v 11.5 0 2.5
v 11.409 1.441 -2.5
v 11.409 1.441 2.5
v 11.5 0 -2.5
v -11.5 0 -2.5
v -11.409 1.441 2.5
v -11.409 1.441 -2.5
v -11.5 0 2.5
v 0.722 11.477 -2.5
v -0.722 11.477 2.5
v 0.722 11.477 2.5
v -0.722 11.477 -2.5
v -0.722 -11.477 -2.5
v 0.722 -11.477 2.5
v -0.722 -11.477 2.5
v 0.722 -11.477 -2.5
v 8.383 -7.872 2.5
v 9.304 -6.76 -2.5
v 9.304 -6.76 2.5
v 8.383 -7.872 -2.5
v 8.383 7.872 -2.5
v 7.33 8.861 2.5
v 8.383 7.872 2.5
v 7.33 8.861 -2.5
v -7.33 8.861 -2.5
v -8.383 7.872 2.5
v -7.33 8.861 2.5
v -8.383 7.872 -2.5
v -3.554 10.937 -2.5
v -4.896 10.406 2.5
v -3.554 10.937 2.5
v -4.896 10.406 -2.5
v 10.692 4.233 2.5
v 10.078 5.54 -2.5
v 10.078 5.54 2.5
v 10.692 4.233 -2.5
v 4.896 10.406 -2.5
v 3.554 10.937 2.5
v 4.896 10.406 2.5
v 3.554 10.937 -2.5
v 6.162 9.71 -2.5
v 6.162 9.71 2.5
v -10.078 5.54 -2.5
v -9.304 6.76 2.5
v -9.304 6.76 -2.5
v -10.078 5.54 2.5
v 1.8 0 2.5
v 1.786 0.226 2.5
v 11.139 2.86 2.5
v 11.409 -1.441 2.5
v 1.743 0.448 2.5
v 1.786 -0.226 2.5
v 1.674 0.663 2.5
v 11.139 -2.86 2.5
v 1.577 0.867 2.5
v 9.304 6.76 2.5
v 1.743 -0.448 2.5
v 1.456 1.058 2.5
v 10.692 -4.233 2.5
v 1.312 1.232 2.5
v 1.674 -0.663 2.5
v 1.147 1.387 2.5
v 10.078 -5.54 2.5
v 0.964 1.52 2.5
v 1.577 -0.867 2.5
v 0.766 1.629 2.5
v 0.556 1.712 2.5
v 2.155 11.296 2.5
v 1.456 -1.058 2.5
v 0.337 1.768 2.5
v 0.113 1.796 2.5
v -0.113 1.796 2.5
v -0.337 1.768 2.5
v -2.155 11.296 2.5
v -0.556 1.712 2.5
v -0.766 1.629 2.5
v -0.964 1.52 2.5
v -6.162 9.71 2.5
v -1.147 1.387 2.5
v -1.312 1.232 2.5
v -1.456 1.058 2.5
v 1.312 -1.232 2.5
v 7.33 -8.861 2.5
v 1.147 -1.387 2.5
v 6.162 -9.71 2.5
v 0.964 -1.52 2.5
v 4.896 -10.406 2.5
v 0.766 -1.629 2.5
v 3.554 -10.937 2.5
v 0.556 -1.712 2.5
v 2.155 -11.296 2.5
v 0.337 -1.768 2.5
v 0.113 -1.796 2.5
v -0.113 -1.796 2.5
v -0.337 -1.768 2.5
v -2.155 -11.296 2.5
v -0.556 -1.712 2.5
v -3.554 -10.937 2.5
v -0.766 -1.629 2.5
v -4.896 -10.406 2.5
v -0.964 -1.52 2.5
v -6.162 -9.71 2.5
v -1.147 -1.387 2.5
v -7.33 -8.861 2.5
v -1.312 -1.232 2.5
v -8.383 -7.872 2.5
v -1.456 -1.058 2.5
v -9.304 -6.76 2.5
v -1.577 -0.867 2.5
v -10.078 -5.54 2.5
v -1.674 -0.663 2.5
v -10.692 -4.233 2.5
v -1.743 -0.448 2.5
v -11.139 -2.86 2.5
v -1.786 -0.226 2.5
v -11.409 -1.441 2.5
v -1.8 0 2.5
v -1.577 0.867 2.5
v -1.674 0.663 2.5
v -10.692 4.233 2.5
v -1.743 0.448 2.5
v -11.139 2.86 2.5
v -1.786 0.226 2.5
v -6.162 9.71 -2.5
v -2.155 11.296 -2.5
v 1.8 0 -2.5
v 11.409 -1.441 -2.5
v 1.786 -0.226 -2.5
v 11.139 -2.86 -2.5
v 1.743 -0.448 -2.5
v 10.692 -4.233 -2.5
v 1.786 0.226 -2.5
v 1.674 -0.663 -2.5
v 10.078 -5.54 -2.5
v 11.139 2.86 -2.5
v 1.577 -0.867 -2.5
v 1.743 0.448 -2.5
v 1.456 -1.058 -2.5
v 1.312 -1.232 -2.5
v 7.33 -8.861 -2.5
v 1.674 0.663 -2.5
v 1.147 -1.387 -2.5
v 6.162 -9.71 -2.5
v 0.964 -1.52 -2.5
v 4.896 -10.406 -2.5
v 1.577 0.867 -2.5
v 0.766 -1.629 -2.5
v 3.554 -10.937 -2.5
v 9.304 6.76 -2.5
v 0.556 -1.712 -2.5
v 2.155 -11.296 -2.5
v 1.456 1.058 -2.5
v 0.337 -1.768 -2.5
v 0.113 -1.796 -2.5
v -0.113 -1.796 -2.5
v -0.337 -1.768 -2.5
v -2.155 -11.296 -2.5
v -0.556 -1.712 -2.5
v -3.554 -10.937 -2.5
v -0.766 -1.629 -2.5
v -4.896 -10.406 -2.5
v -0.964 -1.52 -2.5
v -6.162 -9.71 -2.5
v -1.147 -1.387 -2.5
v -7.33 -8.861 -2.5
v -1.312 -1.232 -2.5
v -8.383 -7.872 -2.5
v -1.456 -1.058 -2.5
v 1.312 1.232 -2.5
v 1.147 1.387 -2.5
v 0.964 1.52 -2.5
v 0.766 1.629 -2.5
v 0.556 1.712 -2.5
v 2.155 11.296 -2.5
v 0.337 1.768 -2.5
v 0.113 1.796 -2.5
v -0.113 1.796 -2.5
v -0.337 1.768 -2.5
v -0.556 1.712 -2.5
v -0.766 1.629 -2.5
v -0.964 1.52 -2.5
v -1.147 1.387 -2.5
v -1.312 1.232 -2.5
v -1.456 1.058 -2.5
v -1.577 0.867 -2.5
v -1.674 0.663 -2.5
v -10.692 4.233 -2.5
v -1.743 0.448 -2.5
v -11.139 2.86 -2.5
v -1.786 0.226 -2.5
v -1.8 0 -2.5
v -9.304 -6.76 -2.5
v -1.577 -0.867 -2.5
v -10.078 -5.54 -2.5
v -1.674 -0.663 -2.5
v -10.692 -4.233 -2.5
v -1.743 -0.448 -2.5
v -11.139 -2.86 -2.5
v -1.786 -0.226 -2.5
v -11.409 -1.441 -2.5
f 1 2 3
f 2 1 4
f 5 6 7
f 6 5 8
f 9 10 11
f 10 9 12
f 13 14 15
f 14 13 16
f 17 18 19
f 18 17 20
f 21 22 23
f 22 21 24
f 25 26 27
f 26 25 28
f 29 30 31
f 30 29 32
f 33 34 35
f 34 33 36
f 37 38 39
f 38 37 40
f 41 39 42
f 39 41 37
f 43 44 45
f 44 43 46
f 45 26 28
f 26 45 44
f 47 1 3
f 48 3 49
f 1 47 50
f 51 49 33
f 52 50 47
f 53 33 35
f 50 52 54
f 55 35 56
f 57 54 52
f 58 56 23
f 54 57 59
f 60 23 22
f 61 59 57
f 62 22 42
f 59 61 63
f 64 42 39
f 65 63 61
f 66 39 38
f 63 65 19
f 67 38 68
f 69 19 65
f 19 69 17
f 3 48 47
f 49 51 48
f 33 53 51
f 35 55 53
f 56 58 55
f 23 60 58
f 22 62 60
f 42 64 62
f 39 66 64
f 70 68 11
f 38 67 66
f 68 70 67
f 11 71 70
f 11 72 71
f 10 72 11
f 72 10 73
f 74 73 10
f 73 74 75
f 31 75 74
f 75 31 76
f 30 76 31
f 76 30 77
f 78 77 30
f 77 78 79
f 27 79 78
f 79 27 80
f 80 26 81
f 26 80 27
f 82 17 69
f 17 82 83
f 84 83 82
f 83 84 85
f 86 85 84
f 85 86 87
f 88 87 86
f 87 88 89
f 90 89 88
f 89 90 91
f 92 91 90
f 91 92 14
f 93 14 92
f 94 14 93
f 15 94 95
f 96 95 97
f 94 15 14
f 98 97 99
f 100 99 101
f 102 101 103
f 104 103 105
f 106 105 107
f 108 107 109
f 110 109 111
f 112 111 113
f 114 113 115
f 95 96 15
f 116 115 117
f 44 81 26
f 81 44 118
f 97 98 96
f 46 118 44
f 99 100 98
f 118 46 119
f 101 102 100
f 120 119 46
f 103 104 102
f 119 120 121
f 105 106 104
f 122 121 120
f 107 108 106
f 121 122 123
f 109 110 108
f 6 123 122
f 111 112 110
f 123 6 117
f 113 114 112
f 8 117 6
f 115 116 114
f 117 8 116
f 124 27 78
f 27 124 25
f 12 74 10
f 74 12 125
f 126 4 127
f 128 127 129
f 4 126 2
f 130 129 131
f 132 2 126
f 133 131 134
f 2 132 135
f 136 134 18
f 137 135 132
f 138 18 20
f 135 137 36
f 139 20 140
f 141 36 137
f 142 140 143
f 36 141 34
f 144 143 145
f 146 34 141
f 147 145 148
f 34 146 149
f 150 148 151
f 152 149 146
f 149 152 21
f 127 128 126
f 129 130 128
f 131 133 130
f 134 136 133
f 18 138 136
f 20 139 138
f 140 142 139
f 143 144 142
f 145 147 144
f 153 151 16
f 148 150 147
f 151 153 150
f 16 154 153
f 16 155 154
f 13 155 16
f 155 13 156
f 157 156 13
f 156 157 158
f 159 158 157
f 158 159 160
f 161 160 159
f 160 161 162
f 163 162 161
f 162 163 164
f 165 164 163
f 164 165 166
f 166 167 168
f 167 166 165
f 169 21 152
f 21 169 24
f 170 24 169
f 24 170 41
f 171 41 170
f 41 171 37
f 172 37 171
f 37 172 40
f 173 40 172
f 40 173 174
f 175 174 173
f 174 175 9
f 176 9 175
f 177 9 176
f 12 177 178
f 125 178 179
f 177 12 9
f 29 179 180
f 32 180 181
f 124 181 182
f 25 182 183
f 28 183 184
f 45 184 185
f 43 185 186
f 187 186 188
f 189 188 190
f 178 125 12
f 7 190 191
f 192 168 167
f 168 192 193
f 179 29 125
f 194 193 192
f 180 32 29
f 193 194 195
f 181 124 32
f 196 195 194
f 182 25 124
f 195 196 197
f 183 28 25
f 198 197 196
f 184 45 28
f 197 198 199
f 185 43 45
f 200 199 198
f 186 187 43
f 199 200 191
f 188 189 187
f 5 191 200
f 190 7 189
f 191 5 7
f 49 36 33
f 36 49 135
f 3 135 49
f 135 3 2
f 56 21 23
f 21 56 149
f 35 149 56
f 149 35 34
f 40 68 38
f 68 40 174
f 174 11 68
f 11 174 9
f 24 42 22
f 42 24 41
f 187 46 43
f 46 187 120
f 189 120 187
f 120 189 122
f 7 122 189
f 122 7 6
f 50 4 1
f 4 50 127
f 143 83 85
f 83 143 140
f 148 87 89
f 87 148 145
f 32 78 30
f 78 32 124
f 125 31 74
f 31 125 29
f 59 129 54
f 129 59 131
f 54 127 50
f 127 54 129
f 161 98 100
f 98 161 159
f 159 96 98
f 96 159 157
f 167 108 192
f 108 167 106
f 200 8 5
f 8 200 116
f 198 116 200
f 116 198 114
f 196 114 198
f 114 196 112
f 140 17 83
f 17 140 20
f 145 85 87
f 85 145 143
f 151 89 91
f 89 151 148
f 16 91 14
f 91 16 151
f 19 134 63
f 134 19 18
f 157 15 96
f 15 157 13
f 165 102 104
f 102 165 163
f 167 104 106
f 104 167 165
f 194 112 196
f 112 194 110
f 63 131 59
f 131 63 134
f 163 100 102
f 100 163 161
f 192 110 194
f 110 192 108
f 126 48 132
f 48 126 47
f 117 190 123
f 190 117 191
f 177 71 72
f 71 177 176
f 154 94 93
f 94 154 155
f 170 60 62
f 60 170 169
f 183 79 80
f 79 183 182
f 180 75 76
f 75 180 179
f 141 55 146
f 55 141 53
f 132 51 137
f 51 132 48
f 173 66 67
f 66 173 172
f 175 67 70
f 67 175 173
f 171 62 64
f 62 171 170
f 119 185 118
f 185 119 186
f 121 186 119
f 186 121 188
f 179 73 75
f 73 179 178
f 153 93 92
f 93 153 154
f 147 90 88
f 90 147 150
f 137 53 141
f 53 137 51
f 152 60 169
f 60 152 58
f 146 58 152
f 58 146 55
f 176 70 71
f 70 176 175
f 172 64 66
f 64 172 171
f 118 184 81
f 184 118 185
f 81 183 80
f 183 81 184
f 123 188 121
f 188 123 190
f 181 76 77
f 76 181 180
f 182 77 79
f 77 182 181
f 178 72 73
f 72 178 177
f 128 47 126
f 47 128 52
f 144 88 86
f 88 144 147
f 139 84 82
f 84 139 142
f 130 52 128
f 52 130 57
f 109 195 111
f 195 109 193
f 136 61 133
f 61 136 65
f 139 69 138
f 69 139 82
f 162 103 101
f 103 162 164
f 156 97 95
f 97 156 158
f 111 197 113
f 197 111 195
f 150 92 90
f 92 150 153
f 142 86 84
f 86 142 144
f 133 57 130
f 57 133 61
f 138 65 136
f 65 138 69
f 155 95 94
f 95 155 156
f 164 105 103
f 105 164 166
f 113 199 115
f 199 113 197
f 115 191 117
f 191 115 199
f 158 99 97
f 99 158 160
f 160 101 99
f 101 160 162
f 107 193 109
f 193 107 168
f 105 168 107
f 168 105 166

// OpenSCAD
$fn = 50;


difference() {
	union() {
		translate(v = [0, 0, -2.5000000000]) {
			cylinder(h = 5, r = 11.5000000000);
		}
	}
	union() {
		translate(v = [0, 0, -100.0000000000]) {
			cylinder(h = 200, r = 1.8000000000);
		}
	}
}
